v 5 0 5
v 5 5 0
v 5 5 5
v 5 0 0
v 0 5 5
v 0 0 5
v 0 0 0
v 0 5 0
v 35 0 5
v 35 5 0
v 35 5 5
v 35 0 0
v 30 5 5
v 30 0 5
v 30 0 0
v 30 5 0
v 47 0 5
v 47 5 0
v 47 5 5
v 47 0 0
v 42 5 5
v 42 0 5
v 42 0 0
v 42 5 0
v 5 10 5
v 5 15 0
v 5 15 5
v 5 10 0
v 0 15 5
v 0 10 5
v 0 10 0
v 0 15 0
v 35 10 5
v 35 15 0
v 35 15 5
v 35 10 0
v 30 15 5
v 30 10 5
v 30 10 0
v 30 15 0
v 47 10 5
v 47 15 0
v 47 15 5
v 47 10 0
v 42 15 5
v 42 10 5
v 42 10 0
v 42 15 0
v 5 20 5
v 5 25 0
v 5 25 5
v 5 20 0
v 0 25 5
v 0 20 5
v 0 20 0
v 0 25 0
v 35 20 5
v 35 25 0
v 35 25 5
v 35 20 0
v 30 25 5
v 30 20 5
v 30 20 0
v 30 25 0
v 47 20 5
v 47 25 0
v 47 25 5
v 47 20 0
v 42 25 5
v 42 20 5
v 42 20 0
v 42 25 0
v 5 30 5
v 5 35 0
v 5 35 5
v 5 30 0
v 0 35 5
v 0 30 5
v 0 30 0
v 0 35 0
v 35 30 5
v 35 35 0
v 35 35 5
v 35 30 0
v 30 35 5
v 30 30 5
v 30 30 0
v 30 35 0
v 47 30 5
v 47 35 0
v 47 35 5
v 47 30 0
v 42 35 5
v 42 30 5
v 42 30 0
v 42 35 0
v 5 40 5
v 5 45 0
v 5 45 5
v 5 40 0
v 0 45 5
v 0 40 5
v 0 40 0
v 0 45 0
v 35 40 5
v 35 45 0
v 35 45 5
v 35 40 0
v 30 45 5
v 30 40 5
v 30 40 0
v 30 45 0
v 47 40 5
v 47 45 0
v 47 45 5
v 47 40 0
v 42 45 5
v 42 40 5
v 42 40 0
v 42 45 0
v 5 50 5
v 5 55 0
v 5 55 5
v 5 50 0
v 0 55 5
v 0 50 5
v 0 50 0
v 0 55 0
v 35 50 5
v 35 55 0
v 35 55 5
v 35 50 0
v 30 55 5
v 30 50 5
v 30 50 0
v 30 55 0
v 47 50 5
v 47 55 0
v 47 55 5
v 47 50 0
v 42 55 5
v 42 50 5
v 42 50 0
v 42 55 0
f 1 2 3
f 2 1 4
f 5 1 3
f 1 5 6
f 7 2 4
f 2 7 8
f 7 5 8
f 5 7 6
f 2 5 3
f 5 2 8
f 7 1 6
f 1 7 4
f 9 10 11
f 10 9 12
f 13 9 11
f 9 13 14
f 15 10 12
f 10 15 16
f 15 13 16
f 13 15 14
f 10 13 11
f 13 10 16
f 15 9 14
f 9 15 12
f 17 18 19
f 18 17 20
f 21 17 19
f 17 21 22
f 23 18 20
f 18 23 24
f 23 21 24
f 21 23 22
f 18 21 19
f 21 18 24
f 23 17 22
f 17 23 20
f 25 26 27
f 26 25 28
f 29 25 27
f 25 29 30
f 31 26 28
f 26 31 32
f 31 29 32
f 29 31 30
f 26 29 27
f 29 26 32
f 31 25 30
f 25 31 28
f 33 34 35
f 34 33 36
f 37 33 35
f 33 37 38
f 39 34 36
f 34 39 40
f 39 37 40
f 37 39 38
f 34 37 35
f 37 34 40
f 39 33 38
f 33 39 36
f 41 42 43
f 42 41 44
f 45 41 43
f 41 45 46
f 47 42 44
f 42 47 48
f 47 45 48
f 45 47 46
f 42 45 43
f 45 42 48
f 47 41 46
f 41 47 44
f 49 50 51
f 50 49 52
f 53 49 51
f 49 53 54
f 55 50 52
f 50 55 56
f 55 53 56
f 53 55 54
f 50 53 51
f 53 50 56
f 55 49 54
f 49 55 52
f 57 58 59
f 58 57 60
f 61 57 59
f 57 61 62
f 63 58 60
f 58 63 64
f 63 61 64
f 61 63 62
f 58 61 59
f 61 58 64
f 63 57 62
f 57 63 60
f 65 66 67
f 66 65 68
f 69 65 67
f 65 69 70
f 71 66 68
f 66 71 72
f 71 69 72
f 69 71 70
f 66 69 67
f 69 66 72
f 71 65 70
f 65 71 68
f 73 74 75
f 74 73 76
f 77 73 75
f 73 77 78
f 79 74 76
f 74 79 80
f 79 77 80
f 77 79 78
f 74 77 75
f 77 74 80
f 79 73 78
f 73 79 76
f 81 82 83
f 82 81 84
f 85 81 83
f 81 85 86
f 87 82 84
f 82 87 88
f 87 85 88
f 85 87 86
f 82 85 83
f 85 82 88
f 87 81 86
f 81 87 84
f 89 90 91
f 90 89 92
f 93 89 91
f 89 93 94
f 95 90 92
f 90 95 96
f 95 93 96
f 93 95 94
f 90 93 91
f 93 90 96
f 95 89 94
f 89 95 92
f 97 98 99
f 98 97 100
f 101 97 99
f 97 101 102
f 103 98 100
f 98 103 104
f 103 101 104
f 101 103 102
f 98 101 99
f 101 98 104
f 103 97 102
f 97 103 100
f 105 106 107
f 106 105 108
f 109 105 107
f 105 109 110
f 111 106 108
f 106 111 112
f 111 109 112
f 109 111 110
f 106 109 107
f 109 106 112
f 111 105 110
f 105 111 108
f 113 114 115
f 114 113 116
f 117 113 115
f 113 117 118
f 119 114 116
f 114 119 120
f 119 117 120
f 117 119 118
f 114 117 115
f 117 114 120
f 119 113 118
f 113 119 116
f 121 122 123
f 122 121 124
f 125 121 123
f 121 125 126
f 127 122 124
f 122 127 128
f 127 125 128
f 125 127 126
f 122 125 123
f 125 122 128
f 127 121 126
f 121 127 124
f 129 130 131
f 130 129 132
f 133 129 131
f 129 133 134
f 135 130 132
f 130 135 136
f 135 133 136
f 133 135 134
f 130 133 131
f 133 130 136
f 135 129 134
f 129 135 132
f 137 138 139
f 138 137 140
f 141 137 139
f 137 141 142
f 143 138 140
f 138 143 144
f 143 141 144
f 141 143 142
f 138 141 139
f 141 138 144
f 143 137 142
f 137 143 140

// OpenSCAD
//cube(30);
//cube(30, center=true);
//cube([10,20,30  ]);
//sphere(19);
//cylinder(20, 5, 10);
//cylinder(r=20,h=10);
//cylinder(r=20,h=10, center=true);

/*
translate([10,0,0]) {
  cube(30,center=true);
  sphere(19);
}
*/

/*
scale([2,1,5])
  sphere(10, $fn=100);
*/

//scale([2,1,5])
// cube(3);

//  cube([6,3,15]);

/*
rotate(90, [1,0,0]) 
cylinder(h=10,r=5, $fn=50);
*/

/*
difference() {
    cube(30,center=true);
    sphere(19);
    
}*/

/*union() {
    
}
*/

/*
$fn=100;
intersection() {
   sphere(30);
    translate( [0,0,50])
   sphere(30);   
}
*/


//square(10);
//circle(10);
//polygon([ [10,0], [0,20], [-6,8],[-20,0],[0,-20]  ]);

/*
linear_extrude(height= 2,scale=0.5)
translate([-12,-12])
    text("h",size=30);
*/


//linear_extrude(height=10, scale=1.5)
//    square(10,center=true);
/*
linear_extrude(height=10, scale=0.5, twist=360, $fn=30)
  square(10,center=true);
  */
  
  
/*
rotate_extrude(angle=45, $fn=30) {
      translate([10,0])
        square(10);
      
  }
*/

/*
  write a donut (torus) with radius R, with the thickness of the circle r
*/
module torus(R, r) {
  circle(r);    
}

//torus(30,10);

/*
minkowski() {
    cube(30);
    cylinder(r=5);
    
}*/

for (y=[0:10:50]) {
  for (x=[0,30,42]) {
    translate([x,y,0])
      cube(5);
    
  }
}


/*
challenges:
  ziggurat
  R2D2
  Android robot
  pipe(OD, thickness, L)
  gear(teeth, OD, toothdepth);

  build two gears that mesh properly

*/
  
  
